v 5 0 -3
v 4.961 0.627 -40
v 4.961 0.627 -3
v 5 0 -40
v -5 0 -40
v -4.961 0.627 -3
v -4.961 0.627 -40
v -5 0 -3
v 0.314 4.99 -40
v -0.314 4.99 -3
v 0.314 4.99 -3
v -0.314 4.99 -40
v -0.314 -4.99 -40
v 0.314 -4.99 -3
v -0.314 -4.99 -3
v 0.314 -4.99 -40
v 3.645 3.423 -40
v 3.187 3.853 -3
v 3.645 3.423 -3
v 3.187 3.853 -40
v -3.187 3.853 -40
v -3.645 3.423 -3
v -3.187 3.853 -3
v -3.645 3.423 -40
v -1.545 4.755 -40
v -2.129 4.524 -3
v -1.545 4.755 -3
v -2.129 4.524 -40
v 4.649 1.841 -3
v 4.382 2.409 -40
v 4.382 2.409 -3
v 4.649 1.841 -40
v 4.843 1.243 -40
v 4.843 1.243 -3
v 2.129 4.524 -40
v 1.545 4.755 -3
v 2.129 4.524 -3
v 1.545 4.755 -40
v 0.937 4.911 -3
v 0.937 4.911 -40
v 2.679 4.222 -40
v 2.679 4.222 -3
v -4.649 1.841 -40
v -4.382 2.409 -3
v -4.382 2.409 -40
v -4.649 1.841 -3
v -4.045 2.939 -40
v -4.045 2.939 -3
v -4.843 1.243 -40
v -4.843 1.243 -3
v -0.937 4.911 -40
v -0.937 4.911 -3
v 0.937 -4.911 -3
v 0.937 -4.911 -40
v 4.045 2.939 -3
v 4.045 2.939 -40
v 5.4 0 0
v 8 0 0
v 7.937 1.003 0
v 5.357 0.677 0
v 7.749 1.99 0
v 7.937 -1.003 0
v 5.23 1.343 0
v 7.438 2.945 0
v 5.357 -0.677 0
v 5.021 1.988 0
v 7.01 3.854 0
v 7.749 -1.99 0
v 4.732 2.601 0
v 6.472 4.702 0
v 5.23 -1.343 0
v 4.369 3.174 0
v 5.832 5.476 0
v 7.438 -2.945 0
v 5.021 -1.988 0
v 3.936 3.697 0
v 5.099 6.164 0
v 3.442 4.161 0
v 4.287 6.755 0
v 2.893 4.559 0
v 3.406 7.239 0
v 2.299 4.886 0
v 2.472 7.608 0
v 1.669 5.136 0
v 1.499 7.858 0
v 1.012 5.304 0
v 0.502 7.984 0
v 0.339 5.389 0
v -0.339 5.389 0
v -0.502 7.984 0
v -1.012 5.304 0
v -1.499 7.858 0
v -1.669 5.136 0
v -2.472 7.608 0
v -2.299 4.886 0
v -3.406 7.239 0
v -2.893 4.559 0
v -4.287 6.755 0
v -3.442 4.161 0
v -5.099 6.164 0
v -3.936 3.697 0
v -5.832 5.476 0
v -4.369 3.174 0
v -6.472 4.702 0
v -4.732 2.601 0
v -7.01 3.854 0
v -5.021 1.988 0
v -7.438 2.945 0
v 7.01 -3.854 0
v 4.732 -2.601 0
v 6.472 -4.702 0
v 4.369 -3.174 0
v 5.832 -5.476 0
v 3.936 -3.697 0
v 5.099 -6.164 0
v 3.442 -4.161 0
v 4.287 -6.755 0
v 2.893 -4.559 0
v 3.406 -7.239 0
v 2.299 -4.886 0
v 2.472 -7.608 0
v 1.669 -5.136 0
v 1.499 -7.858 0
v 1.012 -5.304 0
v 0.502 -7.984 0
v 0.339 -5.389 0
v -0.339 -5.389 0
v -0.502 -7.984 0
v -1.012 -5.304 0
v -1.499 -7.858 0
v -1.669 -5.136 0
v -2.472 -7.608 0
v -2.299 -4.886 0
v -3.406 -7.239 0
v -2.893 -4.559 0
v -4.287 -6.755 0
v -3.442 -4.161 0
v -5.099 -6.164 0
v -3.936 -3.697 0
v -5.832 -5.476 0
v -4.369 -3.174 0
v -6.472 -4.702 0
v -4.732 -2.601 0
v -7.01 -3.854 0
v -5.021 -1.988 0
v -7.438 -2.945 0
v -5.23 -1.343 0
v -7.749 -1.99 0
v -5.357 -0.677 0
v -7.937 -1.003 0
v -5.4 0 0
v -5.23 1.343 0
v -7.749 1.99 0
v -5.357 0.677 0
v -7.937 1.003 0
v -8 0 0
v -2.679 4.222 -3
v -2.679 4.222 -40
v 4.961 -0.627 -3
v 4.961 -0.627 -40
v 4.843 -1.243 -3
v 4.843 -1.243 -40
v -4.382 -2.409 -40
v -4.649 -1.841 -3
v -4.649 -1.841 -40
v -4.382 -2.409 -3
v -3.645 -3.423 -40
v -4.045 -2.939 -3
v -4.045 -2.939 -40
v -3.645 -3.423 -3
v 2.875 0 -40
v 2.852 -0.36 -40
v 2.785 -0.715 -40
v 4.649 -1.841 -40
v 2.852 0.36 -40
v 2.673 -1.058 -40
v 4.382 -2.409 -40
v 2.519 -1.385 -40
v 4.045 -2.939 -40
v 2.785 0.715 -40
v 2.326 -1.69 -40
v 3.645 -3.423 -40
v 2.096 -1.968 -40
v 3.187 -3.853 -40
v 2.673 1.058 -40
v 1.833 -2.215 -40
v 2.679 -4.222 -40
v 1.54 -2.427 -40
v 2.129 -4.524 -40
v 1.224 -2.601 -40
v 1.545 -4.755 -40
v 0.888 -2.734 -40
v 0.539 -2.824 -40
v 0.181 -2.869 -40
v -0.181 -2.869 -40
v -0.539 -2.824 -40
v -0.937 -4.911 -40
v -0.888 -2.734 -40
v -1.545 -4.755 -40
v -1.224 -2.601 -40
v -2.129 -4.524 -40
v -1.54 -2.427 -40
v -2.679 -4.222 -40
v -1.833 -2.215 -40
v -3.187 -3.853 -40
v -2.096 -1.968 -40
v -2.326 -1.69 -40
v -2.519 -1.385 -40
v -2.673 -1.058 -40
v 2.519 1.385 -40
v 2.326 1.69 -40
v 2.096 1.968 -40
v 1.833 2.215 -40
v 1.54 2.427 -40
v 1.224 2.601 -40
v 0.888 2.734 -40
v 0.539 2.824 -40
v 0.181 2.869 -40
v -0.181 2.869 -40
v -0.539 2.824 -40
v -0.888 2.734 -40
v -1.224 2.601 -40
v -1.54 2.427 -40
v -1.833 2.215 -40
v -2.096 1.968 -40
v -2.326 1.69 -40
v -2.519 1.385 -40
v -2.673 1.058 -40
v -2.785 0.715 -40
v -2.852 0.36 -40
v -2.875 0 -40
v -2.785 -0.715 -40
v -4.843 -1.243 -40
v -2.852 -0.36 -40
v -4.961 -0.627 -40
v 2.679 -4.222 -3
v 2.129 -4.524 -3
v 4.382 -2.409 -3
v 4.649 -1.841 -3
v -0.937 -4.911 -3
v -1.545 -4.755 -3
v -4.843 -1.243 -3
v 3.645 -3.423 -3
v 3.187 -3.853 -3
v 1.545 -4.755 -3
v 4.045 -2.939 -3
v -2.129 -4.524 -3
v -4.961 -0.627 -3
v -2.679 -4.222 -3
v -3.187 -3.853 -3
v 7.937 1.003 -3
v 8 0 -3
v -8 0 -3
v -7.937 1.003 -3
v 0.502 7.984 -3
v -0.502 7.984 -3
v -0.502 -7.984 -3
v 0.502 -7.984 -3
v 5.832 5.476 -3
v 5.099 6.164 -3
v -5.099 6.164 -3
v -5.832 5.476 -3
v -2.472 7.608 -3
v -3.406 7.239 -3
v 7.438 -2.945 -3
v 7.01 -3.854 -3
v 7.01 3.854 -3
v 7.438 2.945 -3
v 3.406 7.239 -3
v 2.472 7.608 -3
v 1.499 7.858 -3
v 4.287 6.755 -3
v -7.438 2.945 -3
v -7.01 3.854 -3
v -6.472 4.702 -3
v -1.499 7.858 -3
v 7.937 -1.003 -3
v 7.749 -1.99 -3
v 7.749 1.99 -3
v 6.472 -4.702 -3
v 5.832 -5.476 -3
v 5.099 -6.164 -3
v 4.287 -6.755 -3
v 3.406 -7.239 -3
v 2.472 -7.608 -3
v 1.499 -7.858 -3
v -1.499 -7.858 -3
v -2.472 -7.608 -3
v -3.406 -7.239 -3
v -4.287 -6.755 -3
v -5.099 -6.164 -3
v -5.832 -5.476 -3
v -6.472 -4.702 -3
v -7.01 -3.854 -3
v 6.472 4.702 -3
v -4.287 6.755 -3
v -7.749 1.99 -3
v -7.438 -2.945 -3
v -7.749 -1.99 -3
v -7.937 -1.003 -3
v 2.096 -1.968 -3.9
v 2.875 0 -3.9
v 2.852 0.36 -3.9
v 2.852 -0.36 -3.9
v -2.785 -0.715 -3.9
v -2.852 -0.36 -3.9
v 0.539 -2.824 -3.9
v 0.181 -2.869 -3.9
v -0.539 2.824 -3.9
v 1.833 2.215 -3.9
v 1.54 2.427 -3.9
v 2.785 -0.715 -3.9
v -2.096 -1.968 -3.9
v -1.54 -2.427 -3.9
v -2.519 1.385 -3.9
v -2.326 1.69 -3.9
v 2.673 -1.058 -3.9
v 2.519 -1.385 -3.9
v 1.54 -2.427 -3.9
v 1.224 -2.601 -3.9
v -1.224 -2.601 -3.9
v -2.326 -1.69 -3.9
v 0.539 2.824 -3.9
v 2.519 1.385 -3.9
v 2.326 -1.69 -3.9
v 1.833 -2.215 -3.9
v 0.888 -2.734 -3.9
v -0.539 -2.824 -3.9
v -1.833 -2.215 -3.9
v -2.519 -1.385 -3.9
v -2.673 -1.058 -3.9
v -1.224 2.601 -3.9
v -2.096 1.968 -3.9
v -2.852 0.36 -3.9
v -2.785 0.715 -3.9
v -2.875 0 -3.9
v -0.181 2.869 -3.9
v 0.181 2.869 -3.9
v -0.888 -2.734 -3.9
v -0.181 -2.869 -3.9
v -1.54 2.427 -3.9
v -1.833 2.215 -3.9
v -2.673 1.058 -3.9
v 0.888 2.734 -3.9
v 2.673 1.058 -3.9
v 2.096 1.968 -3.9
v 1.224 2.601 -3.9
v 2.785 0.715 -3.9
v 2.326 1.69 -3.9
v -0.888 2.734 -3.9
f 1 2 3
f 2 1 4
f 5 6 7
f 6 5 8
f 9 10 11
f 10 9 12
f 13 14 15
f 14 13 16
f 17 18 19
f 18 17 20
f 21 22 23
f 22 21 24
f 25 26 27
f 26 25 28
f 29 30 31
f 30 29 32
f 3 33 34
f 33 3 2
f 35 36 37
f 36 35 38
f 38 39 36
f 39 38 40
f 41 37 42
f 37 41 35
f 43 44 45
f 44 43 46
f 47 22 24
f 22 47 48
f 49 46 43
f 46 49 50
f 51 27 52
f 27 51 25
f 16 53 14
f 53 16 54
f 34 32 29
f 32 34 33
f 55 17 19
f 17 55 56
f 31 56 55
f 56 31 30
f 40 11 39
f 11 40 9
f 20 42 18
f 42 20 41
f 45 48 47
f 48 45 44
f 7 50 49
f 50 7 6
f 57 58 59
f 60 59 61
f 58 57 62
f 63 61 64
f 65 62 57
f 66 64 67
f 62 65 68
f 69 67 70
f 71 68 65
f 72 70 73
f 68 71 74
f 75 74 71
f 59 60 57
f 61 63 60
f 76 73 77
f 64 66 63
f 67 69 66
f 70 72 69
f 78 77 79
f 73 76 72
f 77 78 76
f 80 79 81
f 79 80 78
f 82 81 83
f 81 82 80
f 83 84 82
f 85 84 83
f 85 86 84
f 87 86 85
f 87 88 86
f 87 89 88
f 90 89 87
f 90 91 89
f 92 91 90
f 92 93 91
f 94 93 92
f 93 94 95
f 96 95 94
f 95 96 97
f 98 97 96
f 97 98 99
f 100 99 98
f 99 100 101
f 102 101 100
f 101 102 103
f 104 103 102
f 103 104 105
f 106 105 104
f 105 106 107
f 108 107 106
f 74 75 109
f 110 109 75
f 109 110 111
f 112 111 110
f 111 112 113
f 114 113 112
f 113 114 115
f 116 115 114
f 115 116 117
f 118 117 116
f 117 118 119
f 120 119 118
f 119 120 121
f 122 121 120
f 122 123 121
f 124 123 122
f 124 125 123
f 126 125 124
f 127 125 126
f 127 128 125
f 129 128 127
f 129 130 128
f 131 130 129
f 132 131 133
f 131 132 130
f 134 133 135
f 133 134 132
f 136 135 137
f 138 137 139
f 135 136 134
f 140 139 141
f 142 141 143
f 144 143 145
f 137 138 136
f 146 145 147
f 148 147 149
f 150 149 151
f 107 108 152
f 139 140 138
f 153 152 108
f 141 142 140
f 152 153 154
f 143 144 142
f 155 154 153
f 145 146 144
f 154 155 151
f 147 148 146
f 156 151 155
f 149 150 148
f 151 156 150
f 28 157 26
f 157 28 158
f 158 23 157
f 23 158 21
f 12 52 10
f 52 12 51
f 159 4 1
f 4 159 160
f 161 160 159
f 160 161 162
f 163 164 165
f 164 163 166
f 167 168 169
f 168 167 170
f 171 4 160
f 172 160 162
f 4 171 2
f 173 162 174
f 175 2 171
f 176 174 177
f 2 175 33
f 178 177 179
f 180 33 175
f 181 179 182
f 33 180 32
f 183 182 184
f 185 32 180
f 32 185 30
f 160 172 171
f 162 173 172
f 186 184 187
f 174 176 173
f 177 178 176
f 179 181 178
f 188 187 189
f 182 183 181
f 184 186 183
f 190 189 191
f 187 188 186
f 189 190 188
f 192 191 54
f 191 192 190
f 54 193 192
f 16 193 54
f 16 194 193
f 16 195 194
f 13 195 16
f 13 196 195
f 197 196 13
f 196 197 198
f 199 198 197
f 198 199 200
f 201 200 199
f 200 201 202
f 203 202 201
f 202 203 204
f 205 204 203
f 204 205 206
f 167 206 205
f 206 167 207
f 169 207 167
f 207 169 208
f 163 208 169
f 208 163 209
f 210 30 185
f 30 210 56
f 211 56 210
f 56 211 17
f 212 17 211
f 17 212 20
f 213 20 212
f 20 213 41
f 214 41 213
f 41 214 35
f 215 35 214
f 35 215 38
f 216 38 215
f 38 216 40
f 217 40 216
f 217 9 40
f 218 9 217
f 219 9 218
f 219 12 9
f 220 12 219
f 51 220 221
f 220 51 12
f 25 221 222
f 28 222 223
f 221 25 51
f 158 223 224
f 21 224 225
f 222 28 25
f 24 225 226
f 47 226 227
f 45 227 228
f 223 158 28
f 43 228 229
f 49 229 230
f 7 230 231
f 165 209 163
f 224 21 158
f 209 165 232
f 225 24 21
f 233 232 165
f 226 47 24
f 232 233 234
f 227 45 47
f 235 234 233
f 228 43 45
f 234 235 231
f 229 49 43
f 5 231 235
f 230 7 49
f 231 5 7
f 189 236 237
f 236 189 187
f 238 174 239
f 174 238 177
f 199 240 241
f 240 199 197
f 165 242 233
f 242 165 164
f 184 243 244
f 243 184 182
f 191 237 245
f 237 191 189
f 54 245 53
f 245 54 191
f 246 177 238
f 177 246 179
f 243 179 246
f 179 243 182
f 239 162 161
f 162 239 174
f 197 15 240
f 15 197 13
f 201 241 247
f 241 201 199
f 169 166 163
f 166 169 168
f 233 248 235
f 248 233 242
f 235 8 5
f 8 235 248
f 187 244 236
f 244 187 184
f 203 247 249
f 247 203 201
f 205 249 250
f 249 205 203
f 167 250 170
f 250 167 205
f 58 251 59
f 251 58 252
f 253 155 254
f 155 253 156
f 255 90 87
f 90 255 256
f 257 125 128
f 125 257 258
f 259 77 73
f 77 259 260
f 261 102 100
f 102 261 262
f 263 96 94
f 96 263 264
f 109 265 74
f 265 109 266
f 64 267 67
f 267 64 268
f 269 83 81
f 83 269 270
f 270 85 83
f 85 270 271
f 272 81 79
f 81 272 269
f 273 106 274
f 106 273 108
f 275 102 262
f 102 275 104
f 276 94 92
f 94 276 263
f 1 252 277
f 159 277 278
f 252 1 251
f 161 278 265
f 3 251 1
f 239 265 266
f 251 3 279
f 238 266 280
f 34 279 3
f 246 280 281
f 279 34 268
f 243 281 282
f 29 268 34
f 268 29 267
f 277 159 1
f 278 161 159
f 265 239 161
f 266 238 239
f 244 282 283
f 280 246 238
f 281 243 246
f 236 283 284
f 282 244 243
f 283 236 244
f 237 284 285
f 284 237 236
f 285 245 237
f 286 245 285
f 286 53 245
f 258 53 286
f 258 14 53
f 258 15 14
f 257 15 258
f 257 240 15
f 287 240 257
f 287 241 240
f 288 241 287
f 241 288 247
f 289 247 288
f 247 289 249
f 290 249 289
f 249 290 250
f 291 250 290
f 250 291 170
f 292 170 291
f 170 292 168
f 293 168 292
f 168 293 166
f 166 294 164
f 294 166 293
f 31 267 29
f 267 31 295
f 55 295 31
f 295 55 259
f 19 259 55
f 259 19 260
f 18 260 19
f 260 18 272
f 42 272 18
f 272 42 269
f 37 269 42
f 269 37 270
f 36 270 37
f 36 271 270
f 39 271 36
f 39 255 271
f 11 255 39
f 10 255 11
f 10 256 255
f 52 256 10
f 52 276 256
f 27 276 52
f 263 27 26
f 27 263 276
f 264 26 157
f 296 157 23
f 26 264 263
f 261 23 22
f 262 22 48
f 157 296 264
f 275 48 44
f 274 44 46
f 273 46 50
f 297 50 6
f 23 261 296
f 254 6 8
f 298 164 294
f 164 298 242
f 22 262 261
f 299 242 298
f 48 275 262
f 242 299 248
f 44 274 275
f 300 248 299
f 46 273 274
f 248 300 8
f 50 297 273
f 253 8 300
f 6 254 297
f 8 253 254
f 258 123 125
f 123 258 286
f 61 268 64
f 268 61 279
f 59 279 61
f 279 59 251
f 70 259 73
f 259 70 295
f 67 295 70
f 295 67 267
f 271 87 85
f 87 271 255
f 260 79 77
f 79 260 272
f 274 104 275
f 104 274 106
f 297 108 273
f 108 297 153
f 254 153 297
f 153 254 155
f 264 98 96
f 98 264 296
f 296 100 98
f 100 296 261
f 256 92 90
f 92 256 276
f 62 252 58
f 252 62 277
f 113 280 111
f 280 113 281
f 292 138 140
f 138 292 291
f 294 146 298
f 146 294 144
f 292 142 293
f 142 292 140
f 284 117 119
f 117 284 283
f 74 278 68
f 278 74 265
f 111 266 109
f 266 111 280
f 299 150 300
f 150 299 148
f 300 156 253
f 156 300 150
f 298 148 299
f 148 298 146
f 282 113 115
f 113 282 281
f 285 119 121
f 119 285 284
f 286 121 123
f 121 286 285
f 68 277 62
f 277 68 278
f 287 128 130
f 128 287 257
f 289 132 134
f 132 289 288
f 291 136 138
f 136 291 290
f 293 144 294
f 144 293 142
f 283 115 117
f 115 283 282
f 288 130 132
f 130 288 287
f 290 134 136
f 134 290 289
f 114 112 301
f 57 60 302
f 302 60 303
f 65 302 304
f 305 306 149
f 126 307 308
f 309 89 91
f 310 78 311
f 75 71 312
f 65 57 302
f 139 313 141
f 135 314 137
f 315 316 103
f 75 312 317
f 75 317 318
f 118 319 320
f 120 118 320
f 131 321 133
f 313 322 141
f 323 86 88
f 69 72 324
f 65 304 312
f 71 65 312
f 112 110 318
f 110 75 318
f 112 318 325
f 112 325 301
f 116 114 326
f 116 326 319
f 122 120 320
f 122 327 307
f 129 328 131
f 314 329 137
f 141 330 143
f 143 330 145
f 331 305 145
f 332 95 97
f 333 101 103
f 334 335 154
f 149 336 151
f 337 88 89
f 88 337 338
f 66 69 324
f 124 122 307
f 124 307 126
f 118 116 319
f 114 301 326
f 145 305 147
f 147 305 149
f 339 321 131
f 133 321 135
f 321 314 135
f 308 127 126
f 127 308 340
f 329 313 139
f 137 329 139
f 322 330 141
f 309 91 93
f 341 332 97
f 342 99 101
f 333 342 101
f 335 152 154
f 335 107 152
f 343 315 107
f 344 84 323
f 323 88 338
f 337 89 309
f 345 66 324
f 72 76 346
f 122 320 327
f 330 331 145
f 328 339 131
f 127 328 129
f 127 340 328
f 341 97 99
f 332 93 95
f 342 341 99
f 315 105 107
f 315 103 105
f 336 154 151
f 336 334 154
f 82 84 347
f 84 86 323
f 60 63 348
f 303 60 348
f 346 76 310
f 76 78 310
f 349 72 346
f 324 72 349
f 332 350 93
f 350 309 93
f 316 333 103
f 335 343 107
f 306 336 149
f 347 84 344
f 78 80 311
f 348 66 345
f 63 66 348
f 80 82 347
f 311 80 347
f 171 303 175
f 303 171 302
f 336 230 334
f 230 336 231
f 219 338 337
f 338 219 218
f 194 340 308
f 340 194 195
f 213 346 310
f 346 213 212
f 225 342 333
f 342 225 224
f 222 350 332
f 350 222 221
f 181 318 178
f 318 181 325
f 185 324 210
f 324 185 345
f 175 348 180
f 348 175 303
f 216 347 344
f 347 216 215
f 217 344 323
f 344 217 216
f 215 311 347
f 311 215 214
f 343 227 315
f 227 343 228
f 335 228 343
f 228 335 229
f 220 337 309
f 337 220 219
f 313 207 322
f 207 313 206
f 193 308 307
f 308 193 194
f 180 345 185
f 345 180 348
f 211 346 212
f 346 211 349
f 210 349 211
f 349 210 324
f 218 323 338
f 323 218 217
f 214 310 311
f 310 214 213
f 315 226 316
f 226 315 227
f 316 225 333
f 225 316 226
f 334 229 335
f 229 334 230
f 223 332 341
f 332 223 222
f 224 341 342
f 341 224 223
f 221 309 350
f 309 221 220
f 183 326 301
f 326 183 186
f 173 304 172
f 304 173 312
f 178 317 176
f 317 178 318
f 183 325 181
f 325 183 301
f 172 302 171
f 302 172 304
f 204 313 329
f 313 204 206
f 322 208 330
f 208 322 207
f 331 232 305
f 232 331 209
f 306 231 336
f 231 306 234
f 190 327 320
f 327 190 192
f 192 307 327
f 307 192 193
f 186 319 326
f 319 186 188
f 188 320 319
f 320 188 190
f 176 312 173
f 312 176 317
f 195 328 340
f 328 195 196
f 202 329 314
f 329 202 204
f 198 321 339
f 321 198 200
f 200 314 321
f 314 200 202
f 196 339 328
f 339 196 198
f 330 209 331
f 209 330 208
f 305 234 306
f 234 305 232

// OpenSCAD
$fn = 50;


difference() {
	union() {
		translate(v = [0, 0, -40.0000000000]) {
			cylinder(h = 40, r = 5.0000000000);
		}
		translate(v = [0, 0, -3.0000000000]) {
			cylinder(h = 3, r = 8.0000000000);
		}
	}
	union() {
		translate(v = [0, 0, 0]) {
			rotate(a = [0, 0, 0]) {
				difference() {
					union() {
						#translate(v = [0, 0, -40.0000000000]) {
							cylinder(h = 40, r = 2.6000000000);
						}
						#translate(v = [0, 0, -3.9000000000]) {
							cylinder(h = 3.9000000000, r1 = 2.8750000000, r2 = 5.4000000000);
						}
						#translate(v = [0, 0, -40.0000000000]) {
							cylinder(h = 40, r = 2.8750000000);
						}
						#translate(v = [0, 0, -40.0000000000]) {
							cylinder(h = 40, r = 2.6000000000);
						}
					}
					union();
				}
			}
		}
	}
}
